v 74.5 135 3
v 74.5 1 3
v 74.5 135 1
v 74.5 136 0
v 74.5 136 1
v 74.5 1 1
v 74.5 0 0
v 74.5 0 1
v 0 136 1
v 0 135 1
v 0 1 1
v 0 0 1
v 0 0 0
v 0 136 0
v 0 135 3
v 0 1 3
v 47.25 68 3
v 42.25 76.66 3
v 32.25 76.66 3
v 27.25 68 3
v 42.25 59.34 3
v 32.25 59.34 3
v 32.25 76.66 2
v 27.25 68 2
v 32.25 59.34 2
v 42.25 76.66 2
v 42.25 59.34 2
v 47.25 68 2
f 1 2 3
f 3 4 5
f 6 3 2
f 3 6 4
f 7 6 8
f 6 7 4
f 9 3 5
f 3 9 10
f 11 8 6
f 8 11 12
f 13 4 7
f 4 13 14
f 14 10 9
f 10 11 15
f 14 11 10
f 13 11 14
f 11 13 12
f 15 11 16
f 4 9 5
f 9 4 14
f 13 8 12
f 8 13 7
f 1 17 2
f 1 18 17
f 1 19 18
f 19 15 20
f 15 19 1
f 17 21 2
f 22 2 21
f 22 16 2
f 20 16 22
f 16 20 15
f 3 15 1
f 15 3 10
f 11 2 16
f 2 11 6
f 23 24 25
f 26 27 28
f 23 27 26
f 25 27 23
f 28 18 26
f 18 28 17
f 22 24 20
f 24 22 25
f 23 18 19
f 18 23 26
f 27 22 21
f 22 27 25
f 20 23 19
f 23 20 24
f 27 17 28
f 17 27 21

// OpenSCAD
DIM = [
	76.5, // Spielerinnenablage richtung
	138, // Links-Rechts
	29
];



difference(){

	union(){
		cube([ DIM.x-2 , DIM.y-2 , 1 ]);
		translate([ 0 , 1 , 1 ]) cube([ DIM.x-2 , DIM.y-4 , 2 ]);
	}
	
	// Symbol
	translate([ 0.5*(DIM.x-2) , 0.5*(DIM.y-2) , 2 ]) Symbol();
}

module Symbol () {
	
	translate([0,0,1]) hexagon(10,2);
	
}

module hexagon(side, height) {
  length = sqrt(3) * side;
  
  for (r = [-60, 0, 60])
      rotate([0, 0, r])
        cube([side, length, height], center=true);
}
